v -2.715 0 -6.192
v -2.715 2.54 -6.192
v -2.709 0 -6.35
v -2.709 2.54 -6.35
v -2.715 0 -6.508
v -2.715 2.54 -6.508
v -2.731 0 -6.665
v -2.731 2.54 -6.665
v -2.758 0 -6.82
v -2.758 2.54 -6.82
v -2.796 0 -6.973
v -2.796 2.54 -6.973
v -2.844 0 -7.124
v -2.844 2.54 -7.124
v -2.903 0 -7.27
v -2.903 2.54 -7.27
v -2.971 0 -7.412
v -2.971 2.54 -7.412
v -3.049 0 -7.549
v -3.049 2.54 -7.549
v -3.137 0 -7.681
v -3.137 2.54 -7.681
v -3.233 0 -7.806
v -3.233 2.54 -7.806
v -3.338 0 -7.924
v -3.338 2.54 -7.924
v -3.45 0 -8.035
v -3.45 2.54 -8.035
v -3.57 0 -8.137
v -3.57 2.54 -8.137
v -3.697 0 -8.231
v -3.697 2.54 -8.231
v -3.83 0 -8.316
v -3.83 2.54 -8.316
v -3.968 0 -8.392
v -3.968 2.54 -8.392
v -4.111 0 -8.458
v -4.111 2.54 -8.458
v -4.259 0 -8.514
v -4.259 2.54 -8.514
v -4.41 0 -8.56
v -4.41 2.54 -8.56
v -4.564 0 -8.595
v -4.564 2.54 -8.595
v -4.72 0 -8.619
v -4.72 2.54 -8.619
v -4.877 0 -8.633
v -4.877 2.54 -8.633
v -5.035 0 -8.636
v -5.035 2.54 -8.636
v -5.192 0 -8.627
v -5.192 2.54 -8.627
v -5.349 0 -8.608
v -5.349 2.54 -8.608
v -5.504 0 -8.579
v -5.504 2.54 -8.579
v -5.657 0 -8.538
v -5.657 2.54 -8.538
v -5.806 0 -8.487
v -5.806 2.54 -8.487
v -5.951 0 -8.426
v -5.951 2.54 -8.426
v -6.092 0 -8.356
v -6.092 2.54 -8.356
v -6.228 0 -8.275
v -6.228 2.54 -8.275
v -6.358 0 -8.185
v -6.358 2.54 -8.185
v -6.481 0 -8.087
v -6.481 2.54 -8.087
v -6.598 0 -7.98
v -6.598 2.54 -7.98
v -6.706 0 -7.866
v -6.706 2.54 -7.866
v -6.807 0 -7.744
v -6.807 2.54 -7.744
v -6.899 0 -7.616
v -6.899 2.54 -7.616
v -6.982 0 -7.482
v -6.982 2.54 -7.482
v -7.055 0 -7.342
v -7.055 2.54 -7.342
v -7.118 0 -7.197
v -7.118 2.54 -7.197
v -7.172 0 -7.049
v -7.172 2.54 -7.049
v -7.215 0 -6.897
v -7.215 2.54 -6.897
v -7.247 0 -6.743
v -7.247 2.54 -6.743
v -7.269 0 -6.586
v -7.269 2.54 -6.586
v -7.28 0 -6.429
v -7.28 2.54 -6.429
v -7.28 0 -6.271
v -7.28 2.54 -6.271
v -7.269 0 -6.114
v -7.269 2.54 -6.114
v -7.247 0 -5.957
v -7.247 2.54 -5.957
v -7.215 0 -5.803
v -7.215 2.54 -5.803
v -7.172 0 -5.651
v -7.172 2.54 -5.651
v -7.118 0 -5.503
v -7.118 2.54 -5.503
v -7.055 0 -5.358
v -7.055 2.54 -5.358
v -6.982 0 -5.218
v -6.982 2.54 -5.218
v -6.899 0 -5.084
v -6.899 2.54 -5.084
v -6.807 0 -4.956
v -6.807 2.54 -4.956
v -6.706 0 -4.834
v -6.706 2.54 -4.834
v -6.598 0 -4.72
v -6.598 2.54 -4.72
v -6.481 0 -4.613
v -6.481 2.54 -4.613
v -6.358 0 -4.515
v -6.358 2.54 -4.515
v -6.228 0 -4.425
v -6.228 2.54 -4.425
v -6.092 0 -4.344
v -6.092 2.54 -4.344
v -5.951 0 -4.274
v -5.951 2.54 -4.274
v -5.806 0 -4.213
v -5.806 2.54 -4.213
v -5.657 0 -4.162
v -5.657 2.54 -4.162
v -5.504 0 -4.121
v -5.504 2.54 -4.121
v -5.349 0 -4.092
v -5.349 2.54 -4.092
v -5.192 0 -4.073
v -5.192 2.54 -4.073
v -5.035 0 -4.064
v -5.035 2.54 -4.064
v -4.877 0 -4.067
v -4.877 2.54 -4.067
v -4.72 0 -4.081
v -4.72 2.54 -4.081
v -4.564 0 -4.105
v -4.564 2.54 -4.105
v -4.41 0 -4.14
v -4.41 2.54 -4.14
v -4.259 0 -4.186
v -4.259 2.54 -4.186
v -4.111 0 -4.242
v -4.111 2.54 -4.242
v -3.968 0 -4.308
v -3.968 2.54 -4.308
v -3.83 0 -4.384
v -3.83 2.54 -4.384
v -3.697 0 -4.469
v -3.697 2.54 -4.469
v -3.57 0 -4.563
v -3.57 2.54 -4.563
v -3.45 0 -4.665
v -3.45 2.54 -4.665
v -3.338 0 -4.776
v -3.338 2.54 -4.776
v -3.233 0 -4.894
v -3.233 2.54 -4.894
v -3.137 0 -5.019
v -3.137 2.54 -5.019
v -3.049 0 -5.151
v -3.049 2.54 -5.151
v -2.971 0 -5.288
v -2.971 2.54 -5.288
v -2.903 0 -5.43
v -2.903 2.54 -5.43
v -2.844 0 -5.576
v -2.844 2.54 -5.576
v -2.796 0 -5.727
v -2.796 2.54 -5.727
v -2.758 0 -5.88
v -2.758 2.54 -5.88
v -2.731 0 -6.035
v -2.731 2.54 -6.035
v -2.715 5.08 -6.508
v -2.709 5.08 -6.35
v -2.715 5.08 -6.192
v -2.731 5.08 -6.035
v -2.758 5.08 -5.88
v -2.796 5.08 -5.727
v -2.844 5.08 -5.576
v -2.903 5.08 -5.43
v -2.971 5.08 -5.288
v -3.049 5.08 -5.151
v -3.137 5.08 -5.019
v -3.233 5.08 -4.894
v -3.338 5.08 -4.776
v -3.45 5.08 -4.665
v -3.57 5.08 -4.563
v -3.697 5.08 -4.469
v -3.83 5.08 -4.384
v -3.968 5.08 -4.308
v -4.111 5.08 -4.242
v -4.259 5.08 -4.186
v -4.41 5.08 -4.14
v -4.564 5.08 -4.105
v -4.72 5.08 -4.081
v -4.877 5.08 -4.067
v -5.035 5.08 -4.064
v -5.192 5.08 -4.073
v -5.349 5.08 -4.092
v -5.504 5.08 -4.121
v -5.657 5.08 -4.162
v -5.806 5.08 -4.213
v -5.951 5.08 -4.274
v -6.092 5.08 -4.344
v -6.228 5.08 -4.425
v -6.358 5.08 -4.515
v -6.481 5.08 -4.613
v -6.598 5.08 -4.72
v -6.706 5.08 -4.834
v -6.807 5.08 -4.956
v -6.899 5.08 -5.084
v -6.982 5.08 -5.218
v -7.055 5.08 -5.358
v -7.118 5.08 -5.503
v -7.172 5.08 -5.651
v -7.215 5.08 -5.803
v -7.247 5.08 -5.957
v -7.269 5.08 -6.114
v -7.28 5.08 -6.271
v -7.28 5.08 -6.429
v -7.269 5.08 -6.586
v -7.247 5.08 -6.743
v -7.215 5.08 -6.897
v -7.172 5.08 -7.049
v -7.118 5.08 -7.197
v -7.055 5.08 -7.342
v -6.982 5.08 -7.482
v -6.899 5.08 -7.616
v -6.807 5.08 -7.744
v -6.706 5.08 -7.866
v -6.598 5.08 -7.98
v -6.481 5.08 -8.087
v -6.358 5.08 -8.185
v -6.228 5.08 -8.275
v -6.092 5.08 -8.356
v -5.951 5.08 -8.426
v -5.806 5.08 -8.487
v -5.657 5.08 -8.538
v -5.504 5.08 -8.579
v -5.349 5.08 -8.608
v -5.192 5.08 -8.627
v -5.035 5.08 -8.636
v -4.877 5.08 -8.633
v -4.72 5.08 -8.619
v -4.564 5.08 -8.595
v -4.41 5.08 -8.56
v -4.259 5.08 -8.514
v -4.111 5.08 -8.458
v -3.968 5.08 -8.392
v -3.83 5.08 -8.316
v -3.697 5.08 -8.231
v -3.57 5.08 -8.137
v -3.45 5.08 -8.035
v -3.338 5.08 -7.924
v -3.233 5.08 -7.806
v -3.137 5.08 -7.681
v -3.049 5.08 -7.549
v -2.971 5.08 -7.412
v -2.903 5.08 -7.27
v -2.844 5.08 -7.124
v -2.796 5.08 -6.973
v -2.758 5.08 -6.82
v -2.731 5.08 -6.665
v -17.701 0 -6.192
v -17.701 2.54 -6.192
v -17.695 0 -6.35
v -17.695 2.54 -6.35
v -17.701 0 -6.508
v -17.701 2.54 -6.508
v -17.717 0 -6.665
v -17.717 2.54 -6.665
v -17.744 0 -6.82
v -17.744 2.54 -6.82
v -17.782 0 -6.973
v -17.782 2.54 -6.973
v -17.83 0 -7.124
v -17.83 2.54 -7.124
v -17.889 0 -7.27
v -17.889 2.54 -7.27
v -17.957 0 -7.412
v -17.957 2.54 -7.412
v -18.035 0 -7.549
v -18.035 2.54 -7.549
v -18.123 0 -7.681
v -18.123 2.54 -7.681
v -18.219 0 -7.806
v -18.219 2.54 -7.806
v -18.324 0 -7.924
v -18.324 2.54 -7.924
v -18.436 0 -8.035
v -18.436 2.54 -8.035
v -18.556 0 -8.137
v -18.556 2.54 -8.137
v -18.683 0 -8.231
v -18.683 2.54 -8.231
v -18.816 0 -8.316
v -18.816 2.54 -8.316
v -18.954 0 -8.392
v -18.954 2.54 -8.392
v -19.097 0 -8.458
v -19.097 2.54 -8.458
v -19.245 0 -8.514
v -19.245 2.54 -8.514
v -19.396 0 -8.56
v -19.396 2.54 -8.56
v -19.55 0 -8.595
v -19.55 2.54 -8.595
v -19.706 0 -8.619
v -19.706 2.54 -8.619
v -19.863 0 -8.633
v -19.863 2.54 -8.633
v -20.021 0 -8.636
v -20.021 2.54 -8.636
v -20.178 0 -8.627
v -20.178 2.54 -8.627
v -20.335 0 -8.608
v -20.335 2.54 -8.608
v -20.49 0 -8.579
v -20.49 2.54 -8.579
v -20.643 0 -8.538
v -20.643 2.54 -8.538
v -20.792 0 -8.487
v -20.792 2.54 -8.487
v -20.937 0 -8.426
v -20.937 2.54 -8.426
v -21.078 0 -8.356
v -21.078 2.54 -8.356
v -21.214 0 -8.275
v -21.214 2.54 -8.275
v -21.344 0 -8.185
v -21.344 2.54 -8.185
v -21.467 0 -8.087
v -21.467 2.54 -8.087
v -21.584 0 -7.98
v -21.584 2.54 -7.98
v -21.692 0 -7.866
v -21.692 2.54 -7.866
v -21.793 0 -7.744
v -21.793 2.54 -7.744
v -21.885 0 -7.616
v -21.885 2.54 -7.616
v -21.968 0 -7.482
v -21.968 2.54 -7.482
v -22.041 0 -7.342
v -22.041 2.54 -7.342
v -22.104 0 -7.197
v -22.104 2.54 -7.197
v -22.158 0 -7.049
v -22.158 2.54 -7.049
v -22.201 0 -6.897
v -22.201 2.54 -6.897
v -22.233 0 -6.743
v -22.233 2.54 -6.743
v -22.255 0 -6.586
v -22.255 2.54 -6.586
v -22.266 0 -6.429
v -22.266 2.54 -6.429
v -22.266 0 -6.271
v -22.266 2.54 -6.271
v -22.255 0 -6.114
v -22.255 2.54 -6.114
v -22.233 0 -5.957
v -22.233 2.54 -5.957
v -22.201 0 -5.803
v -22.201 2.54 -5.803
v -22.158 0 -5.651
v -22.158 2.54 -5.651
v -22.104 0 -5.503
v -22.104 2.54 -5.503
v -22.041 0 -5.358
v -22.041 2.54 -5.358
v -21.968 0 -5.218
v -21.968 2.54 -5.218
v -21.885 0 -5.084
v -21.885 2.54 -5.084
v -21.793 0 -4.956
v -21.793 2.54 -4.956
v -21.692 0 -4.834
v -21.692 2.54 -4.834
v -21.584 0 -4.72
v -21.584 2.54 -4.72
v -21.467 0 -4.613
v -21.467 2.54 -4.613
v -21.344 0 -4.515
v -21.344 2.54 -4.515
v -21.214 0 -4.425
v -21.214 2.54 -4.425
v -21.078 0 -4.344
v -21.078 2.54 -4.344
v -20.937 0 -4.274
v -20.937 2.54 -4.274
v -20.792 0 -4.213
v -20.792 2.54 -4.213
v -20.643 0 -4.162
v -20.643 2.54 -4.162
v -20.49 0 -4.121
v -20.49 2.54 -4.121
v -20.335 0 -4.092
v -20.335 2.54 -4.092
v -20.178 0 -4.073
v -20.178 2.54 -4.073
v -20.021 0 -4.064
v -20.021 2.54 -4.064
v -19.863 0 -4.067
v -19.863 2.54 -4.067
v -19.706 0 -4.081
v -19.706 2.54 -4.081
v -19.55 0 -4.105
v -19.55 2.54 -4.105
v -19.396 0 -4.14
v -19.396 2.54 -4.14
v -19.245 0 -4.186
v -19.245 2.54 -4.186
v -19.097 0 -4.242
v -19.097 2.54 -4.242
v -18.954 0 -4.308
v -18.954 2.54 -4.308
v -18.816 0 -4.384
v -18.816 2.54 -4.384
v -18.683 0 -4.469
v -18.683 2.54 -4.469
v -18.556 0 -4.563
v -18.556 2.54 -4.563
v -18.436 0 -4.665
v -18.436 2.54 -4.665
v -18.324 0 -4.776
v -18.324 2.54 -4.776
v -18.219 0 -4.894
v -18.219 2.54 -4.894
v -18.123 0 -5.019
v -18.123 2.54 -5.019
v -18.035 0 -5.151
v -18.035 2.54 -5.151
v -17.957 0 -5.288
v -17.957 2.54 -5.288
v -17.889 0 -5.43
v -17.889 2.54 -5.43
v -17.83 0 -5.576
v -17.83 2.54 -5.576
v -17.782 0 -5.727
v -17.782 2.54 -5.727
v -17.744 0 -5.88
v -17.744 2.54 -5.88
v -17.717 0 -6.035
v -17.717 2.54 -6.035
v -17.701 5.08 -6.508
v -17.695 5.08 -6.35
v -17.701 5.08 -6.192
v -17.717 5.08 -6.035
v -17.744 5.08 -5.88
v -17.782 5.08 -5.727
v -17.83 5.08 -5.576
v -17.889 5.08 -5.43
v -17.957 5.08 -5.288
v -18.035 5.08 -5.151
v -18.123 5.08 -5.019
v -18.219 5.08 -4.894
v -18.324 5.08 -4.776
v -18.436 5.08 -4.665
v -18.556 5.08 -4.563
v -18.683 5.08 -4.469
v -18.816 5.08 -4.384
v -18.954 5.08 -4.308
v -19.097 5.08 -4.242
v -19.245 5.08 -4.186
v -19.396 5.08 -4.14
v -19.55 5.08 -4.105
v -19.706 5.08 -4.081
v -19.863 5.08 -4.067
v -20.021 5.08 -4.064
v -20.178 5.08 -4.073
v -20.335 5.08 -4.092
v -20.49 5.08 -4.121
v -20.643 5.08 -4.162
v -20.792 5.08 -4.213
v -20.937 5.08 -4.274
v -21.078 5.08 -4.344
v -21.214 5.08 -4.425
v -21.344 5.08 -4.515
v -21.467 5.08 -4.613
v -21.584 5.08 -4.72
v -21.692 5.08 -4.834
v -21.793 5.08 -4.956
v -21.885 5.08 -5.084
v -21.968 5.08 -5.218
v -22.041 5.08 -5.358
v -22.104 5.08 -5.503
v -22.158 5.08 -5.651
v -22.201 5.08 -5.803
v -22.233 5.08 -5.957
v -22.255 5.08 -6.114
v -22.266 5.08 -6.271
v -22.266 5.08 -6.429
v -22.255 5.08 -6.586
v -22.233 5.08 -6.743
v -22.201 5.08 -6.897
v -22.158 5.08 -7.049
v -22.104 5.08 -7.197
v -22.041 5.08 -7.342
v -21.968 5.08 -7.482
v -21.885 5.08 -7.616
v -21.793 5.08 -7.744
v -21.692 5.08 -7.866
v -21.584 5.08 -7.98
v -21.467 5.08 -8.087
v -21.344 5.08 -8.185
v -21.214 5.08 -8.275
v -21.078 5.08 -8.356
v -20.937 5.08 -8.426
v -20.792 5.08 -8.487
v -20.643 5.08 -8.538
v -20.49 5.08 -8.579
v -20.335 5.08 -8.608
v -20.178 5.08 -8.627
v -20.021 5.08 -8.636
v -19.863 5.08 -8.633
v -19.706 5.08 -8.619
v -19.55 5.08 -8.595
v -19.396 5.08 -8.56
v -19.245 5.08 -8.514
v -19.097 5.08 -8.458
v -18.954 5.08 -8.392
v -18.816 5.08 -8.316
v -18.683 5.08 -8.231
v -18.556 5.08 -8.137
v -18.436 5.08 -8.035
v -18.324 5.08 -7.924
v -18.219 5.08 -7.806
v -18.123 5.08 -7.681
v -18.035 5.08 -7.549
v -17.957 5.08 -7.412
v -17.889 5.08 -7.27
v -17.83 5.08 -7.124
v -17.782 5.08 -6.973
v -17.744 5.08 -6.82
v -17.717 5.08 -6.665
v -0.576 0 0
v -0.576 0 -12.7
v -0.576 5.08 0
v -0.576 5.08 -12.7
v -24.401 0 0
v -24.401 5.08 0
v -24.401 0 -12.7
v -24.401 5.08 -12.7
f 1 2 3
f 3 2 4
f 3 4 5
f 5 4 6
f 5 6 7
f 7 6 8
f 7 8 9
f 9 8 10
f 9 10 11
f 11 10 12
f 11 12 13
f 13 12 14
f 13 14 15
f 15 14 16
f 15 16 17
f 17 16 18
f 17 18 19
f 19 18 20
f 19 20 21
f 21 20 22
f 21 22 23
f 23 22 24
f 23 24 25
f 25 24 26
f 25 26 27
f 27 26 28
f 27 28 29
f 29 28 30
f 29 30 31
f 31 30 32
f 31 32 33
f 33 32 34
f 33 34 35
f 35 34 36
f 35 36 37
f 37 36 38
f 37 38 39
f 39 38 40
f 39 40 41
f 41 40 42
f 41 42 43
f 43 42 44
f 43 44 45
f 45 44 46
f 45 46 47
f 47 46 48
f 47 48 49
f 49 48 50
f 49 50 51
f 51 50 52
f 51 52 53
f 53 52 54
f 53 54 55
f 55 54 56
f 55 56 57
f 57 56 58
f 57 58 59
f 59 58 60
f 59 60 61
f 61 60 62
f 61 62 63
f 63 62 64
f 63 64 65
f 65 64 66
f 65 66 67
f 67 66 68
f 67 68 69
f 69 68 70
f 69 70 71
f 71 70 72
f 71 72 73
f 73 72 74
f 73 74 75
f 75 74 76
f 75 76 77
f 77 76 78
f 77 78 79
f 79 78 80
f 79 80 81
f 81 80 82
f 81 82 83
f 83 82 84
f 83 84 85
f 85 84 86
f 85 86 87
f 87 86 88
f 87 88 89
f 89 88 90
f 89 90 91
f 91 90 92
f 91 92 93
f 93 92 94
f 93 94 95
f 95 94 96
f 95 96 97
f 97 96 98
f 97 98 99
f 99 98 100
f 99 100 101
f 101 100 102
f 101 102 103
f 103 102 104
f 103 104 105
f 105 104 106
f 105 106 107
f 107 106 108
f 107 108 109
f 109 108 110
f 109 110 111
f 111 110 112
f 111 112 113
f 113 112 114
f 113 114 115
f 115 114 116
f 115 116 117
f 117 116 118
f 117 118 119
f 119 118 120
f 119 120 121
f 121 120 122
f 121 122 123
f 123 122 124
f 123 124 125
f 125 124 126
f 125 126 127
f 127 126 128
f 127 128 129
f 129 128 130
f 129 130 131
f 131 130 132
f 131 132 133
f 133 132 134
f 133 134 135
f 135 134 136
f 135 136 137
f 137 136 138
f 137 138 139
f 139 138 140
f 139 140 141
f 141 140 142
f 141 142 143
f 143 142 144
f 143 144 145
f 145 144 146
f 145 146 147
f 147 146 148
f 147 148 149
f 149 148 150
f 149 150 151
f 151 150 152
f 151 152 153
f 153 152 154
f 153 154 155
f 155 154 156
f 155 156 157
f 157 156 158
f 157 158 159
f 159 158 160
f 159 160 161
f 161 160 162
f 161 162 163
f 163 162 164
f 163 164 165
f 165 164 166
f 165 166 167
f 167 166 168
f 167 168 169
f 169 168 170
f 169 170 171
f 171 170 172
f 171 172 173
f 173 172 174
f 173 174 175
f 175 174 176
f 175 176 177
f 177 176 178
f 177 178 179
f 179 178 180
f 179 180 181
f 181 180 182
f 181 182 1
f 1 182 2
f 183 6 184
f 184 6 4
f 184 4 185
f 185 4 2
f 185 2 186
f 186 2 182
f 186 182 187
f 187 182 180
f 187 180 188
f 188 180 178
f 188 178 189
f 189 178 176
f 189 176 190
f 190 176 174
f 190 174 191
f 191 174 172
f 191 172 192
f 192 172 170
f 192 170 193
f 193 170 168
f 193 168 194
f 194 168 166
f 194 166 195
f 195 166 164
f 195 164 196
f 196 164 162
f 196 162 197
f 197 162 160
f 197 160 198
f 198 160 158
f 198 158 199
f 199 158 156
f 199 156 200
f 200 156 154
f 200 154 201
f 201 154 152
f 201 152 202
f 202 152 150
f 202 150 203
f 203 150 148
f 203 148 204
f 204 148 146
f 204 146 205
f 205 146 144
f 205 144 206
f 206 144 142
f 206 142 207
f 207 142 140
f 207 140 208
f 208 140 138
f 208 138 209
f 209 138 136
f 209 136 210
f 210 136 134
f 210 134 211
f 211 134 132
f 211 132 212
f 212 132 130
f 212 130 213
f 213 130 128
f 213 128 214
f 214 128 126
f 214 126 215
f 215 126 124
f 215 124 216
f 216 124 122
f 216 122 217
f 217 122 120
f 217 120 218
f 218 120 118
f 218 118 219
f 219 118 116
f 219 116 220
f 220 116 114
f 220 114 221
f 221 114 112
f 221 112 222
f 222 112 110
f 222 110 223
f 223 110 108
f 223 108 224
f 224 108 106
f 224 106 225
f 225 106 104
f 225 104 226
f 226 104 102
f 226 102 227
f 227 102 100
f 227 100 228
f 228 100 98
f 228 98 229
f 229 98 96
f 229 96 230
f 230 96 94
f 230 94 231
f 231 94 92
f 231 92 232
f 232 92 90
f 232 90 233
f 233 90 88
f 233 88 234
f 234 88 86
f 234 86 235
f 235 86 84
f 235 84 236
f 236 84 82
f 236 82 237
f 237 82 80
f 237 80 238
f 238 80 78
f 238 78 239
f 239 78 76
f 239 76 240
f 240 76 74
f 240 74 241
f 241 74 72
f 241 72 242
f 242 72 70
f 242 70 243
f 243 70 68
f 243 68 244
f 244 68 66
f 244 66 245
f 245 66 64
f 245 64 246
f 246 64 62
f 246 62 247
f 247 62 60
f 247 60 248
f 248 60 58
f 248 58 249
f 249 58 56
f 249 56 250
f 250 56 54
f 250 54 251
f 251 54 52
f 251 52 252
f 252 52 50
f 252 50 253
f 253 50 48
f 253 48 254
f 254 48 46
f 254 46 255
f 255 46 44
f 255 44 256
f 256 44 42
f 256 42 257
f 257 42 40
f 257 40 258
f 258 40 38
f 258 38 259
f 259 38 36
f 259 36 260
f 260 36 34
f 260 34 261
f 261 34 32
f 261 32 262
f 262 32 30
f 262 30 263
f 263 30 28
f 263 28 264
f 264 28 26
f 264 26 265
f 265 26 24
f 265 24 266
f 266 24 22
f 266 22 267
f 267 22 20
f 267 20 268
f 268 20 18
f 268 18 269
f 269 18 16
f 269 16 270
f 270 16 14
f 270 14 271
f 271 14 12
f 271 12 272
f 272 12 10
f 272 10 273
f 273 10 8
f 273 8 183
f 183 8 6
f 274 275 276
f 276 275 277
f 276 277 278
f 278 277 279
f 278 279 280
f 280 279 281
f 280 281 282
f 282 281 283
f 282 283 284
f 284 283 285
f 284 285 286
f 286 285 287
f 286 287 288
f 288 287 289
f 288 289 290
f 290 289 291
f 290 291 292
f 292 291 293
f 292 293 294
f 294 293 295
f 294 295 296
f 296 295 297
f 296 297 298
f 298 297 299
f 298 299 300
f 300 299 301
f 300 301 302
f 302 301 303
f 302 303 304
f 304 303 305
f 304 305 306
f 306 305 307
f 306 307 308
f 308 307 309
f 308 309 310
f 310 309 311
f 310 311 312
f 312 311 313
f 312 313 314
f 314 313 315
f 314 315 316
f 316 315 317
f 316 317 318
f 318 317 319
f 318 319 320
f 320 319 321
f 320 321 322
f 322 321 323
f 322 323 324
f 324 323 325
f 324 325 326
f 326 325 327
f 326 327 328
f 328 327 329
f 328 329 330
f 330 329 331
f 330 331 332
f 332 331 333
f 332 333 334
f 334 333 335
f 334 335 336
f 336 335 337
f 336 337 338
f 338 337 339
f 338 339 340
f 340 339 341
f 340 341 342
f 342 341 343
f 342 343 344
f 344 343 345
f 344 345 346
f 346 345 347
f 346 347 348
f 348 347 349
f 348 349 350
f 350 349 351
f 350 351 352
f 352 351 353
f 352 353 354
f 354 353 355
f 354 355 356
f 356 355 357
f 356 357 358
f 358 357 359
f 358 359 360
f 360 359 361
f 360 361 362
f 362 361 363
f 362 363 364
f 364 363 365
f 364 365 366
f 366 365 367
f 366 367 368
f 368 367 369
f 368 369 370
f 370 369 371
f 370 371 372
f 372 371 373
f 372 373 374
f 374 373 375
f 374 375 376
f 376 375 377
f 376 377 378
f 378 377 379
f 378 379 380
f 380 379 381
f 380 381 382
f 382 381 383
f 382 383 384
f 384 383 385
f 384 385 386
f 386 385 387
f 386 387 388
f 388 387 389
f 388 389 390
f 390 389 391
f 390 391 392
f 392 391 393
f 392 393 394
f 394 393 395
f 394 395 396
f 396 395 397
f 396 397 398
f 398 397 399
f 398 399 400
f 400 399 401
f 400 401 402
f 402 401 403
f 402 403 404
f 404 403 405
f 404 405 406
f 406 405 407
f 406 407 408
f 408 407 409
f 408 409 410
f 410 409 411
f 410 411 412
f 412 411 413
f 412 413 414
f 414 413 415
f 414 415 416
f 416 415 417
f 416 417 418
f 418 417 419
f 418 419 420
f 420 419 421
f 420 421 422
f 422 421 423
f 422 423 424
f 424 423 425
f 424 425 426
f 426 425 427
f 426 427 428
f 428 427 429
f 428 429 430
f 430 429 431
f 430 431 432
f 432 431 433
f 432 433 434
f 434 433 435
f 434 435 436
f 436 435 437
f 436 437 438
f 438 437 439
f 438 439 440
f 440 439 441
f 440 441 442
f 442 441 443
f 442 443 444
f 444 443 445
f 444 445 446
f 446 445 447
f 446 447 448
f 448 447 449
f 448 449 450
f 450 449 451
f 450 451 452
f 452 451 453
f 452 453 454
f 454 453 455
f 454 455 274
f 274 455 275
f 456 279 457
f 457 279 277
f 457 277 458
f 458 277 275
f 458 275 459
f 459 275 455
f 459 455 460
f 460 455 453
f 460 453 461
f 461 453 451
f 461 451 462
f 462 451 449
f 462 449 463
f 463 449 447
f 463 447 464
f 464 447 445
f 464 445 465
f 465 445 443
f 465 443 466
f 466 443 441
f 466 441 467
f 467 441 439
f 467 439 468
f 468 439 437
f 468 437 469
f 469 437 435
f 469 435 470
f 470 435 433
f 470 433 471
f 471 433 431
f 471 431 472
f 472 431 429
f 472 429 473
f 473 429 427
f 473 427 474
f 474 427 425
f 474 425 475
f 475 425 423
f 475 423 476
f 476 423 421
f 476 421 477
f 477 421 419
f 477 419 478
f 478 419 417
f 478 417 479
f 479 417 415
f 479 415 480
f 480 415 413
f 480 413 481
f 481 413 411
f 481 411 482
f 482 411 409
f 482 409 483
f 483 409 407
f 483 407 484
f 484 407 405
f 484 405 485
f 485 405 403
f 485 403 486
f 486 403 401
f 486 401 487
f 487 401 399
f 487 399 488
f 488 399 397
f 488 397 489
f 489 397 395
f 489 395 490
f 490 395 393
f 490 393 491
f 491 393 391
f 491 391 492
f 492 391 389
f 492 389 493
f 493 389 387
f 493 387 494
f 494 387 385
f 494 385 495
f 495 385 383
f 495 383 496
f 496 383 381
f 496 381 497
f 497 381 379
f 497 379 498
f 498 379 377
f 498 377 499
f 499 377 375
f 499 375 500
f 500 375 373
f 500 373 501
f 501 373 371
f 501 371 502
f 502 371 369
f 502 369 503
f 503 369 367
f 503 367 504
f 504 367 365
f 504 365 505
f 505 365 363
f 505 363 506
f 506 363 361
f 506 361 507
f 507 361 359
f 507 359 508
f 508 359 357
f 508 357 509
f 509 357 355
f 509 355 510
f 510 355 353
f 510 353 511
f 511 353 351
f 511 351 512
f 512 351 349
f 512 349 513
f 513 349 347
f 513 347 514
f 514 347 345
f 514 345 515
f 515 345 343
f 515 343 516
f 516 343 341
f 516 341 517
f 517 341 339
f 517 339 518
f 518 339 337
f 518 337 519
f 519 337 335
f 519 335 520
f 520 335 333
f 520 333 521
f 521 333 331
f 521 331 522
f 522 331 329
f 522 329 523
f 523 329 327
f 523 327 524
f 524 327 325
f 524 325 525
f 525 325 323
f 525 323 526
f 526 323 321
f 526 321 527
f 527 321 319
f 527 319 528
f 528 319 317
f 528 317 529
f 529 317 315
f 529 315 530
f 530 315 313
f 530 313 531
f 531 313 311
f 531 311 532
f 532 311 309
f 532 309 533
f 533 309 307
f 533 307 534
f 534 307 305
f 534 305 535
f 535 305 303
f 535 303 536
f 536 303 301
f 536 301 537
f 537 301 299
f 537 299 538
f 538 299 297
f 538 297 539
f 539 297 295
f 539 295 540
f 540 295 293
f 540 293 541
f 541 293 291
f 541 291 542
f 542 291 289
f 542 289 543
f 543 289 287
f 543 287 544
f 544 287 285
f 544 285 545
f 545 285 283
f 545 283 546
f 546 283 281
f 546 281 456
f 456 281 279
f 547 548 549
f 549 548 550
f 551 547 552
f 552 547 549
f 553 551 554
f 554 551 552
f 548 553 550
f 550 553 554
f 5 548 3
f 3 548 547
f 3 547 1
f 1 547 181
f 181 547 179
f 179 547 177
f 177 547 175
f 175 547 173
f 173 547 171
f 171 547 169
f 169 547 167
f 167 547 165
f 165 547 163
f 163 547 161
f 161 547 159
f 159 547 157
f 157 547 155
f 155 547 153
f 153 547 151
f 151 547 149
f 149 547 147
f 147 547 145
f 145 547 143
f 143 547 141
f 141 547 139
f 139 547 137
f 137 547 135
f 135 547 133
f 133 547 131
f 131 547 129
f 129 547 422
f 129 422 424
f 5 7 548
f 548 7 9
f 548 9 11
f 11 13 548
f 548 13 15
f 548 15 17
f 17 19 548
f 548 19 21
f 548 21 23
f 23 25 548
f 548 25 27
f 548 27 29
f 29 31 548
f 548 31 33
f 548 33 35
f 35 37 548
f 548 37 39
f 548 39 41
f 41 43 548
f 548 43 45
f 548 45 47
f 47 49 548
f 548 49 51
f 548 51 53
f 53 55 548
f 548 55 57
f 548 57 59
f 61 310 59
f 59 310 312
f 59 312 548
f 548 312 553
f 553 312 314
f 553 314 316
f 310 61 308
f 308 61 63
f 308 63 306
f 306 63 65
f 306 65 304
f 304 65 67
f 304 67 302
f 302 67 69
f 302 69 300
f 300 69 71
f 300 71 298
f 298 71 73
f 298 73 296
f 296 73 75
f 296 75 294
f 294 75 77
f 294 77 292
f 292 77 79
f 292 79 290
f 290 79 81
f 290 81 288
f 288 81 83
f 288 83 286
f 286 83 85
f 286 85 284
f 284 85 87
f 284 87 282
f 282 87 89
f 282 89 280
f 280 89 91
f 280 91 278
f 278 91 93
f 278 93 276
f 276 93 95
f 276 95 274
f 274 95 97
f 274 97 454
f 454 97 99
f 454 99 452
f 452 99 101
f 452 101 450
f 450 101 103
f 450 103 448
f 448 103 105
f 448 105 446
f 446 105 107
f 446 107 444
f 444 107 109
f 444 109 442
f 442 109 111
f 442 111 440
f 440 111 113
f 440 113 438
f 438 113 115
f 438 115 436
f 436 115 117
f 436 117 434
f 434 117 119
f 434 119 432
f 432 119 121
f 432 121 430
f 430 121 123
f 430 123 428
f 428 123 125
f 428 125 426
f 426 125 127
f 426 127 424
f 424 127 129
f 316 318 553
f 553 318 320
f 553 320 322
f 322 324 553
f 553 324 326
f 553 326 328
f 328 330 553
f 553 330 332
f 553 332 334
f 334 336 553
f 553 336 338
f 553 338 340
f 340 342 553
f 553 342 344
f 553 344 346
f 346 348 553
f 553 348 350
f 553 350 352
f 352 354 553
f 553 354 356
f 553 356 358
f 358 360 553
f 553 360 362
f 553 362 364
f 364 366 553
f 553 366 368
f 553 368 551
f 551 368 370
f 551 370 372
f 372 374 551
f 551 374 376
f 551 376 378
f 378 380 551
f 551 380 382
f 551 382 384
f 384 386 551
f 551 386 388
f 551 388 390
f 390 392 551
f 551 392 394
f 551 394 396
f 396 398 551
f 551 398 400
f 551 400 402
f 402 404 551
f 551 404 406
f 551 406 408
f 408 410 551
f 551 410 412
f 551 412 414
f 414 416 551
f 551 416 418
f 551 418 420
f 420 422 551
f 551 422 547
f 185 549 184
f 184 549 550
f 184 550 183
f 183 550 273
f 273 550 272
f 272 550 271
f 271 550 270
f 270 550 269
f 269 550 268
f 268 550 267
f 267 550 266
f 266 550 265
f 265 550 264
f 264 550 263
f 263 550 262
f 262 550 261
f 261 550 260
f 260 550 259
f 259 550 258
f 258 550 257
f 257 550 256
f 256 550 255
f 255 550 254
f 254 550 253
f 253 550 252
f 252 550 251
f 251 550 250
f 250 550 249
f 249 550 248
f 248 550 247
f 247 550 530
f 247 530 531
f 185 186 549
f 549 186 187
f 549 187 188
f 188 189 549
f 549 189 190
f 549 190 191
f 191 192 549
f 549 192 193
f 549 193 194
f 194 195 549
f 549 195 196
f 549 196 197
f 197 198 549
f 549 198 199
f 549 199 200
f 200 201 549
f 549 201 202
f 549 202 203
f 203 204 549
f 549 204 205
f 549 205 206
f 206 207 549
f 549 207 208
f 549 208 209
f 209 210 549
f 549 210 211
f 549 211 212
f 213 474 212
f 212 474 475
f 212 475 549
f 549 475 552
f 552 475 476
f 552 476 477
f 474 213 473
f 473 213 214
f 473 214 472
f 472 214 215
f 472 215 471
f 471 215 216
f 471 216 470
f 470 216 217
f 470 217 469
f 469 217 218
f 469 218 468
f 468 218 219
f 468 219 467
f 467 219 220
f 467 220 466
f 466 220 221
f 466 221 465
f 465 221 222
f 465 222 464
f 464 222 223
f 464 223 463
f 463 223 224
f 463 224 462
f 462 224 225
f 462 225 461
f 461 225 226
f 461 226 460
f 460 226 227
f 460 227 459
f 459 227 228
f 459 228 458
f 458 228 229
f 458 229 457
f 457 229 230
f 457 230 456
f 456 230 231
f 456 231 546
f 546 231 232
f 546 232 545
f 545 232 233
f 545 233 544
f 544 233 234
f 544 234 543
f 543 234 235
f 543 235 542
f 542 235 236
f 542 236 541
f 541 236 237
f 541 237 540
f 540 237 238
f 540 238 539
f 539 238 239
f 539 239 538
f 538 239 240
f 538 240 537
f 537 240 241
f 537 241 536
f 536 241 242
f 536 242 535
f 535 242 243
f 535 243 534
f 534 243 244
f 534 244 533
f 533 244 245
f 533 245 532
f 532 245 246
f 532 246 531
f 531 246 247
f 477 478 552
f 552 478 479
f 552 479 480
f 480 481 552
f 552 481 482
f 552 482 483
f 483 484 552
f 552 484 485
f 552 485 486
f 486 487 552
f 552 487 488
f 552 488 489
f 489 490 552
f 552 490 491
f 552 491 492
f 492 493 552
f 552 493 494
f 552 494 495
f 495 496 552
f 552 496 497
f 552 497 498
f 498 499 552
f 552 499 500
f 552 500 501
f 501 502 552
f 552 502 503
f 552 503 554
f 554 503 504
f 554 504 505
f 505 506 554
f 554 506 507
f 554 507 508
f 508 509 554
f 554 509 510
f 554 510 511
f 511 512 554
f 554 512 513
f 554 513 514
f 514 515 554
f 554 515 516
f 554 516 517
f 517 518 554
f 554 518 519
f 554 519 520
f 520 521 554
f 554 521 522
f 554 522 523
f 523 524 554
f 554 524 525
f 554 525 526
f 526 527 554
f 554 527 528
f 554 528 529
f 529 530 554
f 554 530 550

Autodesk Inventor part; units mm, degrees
ref_plane "YZ Plane" through (0, 0, 0) normal (1, 0, 0) x (0, 1, 0)
ref_plane "XZ Plane" through (0, 0, 0) normal (0, 1, 0) x (-1, 0, 0)
ref_plane "XY Plane" through (0, 0, 0) normal (0, 0, 1) x (1, 0, 0)
sketch "Spacer 2D" plane through (0, 0, 0) normal (0, 1, 0) x (-1, 0, 0)
  line L0 (12.4883, 0) -> (12.4883, -12.7) construction
  line L1 (24.4009, -12.7) -> (0.5757, -12.7)
  line L2 (0.5757, -12.7) -> (0.5757, 0)
  line L3 (0.5757, 0) -> (24.4009, 0)
  line L4 (24.4009, 0) -> (24.4009, -12.7)
  line L5 (24.4009, -12.7) -> (0.5757, 0) construction
  line L6 (0.5757, -12.7) -> (24.4009, 0) construction
  point P0 (0, 0)
  point P1 (12.4883, -6.35)
  dimension "d17" = 23.8252
  dimension "d18" = 12.7
extrude "Spacer Body" add sketch "Spacer 2D" along normal blind 5.08
sketch "Spacer Circles" plane through (0, 5.08, 0) normal (0, 1, 0) x (1, 0, 0)
  line L0 (-0.5757, 0) -> (-0.5757, 12.7) construction
  line L1 (-7.2813, 6.35) -> (-0.5757, 6.35) construction
  line L2 (-7.2813, 6.35) -> (-2.7093, 6.35) construction
  circle A0 centre (-4.9953, 6.35) radius 2.286
  line L3 (-17.6953, 6.35) -> (-7.2813, 6.35) construction
  line L4 (-17.6953, 6.35) -> (-24.4009, 6.35) construction
  line L5 (-24.4009, 12.7) -> (-24.4009, 0) construction
  line L6 (-0.5757, 0) -> (-24.4009, 0) construction
  line L7 (-24.4009, 0) -> (-24.4009, 12.7) construction
  line L8 (-24.4009, 12.7) -> (-0.5757, 12.7) construction
  line L9 (-0.5757, 12.7) -> (-0.5757, 0) construction
  line L10 (-12.4883, 6.35) -> (-12.4883, 0) construction
  line L11 (-24.4009, 0) -> (-0.5757, 0) construction
  circle A1 centre (-19.9813, 6.35) radius 2.286
  dimension "d25" = 4.572
  dimension "d26" = 10.414
  dimension "d31" = 2.1336
  dimension "d32" = 2.1336
extrude "Spacer Holes" cut sketch "Spacer Circles" against normal blind 10.16
properties part number "Rectangular Bottom Washer v1.2"
